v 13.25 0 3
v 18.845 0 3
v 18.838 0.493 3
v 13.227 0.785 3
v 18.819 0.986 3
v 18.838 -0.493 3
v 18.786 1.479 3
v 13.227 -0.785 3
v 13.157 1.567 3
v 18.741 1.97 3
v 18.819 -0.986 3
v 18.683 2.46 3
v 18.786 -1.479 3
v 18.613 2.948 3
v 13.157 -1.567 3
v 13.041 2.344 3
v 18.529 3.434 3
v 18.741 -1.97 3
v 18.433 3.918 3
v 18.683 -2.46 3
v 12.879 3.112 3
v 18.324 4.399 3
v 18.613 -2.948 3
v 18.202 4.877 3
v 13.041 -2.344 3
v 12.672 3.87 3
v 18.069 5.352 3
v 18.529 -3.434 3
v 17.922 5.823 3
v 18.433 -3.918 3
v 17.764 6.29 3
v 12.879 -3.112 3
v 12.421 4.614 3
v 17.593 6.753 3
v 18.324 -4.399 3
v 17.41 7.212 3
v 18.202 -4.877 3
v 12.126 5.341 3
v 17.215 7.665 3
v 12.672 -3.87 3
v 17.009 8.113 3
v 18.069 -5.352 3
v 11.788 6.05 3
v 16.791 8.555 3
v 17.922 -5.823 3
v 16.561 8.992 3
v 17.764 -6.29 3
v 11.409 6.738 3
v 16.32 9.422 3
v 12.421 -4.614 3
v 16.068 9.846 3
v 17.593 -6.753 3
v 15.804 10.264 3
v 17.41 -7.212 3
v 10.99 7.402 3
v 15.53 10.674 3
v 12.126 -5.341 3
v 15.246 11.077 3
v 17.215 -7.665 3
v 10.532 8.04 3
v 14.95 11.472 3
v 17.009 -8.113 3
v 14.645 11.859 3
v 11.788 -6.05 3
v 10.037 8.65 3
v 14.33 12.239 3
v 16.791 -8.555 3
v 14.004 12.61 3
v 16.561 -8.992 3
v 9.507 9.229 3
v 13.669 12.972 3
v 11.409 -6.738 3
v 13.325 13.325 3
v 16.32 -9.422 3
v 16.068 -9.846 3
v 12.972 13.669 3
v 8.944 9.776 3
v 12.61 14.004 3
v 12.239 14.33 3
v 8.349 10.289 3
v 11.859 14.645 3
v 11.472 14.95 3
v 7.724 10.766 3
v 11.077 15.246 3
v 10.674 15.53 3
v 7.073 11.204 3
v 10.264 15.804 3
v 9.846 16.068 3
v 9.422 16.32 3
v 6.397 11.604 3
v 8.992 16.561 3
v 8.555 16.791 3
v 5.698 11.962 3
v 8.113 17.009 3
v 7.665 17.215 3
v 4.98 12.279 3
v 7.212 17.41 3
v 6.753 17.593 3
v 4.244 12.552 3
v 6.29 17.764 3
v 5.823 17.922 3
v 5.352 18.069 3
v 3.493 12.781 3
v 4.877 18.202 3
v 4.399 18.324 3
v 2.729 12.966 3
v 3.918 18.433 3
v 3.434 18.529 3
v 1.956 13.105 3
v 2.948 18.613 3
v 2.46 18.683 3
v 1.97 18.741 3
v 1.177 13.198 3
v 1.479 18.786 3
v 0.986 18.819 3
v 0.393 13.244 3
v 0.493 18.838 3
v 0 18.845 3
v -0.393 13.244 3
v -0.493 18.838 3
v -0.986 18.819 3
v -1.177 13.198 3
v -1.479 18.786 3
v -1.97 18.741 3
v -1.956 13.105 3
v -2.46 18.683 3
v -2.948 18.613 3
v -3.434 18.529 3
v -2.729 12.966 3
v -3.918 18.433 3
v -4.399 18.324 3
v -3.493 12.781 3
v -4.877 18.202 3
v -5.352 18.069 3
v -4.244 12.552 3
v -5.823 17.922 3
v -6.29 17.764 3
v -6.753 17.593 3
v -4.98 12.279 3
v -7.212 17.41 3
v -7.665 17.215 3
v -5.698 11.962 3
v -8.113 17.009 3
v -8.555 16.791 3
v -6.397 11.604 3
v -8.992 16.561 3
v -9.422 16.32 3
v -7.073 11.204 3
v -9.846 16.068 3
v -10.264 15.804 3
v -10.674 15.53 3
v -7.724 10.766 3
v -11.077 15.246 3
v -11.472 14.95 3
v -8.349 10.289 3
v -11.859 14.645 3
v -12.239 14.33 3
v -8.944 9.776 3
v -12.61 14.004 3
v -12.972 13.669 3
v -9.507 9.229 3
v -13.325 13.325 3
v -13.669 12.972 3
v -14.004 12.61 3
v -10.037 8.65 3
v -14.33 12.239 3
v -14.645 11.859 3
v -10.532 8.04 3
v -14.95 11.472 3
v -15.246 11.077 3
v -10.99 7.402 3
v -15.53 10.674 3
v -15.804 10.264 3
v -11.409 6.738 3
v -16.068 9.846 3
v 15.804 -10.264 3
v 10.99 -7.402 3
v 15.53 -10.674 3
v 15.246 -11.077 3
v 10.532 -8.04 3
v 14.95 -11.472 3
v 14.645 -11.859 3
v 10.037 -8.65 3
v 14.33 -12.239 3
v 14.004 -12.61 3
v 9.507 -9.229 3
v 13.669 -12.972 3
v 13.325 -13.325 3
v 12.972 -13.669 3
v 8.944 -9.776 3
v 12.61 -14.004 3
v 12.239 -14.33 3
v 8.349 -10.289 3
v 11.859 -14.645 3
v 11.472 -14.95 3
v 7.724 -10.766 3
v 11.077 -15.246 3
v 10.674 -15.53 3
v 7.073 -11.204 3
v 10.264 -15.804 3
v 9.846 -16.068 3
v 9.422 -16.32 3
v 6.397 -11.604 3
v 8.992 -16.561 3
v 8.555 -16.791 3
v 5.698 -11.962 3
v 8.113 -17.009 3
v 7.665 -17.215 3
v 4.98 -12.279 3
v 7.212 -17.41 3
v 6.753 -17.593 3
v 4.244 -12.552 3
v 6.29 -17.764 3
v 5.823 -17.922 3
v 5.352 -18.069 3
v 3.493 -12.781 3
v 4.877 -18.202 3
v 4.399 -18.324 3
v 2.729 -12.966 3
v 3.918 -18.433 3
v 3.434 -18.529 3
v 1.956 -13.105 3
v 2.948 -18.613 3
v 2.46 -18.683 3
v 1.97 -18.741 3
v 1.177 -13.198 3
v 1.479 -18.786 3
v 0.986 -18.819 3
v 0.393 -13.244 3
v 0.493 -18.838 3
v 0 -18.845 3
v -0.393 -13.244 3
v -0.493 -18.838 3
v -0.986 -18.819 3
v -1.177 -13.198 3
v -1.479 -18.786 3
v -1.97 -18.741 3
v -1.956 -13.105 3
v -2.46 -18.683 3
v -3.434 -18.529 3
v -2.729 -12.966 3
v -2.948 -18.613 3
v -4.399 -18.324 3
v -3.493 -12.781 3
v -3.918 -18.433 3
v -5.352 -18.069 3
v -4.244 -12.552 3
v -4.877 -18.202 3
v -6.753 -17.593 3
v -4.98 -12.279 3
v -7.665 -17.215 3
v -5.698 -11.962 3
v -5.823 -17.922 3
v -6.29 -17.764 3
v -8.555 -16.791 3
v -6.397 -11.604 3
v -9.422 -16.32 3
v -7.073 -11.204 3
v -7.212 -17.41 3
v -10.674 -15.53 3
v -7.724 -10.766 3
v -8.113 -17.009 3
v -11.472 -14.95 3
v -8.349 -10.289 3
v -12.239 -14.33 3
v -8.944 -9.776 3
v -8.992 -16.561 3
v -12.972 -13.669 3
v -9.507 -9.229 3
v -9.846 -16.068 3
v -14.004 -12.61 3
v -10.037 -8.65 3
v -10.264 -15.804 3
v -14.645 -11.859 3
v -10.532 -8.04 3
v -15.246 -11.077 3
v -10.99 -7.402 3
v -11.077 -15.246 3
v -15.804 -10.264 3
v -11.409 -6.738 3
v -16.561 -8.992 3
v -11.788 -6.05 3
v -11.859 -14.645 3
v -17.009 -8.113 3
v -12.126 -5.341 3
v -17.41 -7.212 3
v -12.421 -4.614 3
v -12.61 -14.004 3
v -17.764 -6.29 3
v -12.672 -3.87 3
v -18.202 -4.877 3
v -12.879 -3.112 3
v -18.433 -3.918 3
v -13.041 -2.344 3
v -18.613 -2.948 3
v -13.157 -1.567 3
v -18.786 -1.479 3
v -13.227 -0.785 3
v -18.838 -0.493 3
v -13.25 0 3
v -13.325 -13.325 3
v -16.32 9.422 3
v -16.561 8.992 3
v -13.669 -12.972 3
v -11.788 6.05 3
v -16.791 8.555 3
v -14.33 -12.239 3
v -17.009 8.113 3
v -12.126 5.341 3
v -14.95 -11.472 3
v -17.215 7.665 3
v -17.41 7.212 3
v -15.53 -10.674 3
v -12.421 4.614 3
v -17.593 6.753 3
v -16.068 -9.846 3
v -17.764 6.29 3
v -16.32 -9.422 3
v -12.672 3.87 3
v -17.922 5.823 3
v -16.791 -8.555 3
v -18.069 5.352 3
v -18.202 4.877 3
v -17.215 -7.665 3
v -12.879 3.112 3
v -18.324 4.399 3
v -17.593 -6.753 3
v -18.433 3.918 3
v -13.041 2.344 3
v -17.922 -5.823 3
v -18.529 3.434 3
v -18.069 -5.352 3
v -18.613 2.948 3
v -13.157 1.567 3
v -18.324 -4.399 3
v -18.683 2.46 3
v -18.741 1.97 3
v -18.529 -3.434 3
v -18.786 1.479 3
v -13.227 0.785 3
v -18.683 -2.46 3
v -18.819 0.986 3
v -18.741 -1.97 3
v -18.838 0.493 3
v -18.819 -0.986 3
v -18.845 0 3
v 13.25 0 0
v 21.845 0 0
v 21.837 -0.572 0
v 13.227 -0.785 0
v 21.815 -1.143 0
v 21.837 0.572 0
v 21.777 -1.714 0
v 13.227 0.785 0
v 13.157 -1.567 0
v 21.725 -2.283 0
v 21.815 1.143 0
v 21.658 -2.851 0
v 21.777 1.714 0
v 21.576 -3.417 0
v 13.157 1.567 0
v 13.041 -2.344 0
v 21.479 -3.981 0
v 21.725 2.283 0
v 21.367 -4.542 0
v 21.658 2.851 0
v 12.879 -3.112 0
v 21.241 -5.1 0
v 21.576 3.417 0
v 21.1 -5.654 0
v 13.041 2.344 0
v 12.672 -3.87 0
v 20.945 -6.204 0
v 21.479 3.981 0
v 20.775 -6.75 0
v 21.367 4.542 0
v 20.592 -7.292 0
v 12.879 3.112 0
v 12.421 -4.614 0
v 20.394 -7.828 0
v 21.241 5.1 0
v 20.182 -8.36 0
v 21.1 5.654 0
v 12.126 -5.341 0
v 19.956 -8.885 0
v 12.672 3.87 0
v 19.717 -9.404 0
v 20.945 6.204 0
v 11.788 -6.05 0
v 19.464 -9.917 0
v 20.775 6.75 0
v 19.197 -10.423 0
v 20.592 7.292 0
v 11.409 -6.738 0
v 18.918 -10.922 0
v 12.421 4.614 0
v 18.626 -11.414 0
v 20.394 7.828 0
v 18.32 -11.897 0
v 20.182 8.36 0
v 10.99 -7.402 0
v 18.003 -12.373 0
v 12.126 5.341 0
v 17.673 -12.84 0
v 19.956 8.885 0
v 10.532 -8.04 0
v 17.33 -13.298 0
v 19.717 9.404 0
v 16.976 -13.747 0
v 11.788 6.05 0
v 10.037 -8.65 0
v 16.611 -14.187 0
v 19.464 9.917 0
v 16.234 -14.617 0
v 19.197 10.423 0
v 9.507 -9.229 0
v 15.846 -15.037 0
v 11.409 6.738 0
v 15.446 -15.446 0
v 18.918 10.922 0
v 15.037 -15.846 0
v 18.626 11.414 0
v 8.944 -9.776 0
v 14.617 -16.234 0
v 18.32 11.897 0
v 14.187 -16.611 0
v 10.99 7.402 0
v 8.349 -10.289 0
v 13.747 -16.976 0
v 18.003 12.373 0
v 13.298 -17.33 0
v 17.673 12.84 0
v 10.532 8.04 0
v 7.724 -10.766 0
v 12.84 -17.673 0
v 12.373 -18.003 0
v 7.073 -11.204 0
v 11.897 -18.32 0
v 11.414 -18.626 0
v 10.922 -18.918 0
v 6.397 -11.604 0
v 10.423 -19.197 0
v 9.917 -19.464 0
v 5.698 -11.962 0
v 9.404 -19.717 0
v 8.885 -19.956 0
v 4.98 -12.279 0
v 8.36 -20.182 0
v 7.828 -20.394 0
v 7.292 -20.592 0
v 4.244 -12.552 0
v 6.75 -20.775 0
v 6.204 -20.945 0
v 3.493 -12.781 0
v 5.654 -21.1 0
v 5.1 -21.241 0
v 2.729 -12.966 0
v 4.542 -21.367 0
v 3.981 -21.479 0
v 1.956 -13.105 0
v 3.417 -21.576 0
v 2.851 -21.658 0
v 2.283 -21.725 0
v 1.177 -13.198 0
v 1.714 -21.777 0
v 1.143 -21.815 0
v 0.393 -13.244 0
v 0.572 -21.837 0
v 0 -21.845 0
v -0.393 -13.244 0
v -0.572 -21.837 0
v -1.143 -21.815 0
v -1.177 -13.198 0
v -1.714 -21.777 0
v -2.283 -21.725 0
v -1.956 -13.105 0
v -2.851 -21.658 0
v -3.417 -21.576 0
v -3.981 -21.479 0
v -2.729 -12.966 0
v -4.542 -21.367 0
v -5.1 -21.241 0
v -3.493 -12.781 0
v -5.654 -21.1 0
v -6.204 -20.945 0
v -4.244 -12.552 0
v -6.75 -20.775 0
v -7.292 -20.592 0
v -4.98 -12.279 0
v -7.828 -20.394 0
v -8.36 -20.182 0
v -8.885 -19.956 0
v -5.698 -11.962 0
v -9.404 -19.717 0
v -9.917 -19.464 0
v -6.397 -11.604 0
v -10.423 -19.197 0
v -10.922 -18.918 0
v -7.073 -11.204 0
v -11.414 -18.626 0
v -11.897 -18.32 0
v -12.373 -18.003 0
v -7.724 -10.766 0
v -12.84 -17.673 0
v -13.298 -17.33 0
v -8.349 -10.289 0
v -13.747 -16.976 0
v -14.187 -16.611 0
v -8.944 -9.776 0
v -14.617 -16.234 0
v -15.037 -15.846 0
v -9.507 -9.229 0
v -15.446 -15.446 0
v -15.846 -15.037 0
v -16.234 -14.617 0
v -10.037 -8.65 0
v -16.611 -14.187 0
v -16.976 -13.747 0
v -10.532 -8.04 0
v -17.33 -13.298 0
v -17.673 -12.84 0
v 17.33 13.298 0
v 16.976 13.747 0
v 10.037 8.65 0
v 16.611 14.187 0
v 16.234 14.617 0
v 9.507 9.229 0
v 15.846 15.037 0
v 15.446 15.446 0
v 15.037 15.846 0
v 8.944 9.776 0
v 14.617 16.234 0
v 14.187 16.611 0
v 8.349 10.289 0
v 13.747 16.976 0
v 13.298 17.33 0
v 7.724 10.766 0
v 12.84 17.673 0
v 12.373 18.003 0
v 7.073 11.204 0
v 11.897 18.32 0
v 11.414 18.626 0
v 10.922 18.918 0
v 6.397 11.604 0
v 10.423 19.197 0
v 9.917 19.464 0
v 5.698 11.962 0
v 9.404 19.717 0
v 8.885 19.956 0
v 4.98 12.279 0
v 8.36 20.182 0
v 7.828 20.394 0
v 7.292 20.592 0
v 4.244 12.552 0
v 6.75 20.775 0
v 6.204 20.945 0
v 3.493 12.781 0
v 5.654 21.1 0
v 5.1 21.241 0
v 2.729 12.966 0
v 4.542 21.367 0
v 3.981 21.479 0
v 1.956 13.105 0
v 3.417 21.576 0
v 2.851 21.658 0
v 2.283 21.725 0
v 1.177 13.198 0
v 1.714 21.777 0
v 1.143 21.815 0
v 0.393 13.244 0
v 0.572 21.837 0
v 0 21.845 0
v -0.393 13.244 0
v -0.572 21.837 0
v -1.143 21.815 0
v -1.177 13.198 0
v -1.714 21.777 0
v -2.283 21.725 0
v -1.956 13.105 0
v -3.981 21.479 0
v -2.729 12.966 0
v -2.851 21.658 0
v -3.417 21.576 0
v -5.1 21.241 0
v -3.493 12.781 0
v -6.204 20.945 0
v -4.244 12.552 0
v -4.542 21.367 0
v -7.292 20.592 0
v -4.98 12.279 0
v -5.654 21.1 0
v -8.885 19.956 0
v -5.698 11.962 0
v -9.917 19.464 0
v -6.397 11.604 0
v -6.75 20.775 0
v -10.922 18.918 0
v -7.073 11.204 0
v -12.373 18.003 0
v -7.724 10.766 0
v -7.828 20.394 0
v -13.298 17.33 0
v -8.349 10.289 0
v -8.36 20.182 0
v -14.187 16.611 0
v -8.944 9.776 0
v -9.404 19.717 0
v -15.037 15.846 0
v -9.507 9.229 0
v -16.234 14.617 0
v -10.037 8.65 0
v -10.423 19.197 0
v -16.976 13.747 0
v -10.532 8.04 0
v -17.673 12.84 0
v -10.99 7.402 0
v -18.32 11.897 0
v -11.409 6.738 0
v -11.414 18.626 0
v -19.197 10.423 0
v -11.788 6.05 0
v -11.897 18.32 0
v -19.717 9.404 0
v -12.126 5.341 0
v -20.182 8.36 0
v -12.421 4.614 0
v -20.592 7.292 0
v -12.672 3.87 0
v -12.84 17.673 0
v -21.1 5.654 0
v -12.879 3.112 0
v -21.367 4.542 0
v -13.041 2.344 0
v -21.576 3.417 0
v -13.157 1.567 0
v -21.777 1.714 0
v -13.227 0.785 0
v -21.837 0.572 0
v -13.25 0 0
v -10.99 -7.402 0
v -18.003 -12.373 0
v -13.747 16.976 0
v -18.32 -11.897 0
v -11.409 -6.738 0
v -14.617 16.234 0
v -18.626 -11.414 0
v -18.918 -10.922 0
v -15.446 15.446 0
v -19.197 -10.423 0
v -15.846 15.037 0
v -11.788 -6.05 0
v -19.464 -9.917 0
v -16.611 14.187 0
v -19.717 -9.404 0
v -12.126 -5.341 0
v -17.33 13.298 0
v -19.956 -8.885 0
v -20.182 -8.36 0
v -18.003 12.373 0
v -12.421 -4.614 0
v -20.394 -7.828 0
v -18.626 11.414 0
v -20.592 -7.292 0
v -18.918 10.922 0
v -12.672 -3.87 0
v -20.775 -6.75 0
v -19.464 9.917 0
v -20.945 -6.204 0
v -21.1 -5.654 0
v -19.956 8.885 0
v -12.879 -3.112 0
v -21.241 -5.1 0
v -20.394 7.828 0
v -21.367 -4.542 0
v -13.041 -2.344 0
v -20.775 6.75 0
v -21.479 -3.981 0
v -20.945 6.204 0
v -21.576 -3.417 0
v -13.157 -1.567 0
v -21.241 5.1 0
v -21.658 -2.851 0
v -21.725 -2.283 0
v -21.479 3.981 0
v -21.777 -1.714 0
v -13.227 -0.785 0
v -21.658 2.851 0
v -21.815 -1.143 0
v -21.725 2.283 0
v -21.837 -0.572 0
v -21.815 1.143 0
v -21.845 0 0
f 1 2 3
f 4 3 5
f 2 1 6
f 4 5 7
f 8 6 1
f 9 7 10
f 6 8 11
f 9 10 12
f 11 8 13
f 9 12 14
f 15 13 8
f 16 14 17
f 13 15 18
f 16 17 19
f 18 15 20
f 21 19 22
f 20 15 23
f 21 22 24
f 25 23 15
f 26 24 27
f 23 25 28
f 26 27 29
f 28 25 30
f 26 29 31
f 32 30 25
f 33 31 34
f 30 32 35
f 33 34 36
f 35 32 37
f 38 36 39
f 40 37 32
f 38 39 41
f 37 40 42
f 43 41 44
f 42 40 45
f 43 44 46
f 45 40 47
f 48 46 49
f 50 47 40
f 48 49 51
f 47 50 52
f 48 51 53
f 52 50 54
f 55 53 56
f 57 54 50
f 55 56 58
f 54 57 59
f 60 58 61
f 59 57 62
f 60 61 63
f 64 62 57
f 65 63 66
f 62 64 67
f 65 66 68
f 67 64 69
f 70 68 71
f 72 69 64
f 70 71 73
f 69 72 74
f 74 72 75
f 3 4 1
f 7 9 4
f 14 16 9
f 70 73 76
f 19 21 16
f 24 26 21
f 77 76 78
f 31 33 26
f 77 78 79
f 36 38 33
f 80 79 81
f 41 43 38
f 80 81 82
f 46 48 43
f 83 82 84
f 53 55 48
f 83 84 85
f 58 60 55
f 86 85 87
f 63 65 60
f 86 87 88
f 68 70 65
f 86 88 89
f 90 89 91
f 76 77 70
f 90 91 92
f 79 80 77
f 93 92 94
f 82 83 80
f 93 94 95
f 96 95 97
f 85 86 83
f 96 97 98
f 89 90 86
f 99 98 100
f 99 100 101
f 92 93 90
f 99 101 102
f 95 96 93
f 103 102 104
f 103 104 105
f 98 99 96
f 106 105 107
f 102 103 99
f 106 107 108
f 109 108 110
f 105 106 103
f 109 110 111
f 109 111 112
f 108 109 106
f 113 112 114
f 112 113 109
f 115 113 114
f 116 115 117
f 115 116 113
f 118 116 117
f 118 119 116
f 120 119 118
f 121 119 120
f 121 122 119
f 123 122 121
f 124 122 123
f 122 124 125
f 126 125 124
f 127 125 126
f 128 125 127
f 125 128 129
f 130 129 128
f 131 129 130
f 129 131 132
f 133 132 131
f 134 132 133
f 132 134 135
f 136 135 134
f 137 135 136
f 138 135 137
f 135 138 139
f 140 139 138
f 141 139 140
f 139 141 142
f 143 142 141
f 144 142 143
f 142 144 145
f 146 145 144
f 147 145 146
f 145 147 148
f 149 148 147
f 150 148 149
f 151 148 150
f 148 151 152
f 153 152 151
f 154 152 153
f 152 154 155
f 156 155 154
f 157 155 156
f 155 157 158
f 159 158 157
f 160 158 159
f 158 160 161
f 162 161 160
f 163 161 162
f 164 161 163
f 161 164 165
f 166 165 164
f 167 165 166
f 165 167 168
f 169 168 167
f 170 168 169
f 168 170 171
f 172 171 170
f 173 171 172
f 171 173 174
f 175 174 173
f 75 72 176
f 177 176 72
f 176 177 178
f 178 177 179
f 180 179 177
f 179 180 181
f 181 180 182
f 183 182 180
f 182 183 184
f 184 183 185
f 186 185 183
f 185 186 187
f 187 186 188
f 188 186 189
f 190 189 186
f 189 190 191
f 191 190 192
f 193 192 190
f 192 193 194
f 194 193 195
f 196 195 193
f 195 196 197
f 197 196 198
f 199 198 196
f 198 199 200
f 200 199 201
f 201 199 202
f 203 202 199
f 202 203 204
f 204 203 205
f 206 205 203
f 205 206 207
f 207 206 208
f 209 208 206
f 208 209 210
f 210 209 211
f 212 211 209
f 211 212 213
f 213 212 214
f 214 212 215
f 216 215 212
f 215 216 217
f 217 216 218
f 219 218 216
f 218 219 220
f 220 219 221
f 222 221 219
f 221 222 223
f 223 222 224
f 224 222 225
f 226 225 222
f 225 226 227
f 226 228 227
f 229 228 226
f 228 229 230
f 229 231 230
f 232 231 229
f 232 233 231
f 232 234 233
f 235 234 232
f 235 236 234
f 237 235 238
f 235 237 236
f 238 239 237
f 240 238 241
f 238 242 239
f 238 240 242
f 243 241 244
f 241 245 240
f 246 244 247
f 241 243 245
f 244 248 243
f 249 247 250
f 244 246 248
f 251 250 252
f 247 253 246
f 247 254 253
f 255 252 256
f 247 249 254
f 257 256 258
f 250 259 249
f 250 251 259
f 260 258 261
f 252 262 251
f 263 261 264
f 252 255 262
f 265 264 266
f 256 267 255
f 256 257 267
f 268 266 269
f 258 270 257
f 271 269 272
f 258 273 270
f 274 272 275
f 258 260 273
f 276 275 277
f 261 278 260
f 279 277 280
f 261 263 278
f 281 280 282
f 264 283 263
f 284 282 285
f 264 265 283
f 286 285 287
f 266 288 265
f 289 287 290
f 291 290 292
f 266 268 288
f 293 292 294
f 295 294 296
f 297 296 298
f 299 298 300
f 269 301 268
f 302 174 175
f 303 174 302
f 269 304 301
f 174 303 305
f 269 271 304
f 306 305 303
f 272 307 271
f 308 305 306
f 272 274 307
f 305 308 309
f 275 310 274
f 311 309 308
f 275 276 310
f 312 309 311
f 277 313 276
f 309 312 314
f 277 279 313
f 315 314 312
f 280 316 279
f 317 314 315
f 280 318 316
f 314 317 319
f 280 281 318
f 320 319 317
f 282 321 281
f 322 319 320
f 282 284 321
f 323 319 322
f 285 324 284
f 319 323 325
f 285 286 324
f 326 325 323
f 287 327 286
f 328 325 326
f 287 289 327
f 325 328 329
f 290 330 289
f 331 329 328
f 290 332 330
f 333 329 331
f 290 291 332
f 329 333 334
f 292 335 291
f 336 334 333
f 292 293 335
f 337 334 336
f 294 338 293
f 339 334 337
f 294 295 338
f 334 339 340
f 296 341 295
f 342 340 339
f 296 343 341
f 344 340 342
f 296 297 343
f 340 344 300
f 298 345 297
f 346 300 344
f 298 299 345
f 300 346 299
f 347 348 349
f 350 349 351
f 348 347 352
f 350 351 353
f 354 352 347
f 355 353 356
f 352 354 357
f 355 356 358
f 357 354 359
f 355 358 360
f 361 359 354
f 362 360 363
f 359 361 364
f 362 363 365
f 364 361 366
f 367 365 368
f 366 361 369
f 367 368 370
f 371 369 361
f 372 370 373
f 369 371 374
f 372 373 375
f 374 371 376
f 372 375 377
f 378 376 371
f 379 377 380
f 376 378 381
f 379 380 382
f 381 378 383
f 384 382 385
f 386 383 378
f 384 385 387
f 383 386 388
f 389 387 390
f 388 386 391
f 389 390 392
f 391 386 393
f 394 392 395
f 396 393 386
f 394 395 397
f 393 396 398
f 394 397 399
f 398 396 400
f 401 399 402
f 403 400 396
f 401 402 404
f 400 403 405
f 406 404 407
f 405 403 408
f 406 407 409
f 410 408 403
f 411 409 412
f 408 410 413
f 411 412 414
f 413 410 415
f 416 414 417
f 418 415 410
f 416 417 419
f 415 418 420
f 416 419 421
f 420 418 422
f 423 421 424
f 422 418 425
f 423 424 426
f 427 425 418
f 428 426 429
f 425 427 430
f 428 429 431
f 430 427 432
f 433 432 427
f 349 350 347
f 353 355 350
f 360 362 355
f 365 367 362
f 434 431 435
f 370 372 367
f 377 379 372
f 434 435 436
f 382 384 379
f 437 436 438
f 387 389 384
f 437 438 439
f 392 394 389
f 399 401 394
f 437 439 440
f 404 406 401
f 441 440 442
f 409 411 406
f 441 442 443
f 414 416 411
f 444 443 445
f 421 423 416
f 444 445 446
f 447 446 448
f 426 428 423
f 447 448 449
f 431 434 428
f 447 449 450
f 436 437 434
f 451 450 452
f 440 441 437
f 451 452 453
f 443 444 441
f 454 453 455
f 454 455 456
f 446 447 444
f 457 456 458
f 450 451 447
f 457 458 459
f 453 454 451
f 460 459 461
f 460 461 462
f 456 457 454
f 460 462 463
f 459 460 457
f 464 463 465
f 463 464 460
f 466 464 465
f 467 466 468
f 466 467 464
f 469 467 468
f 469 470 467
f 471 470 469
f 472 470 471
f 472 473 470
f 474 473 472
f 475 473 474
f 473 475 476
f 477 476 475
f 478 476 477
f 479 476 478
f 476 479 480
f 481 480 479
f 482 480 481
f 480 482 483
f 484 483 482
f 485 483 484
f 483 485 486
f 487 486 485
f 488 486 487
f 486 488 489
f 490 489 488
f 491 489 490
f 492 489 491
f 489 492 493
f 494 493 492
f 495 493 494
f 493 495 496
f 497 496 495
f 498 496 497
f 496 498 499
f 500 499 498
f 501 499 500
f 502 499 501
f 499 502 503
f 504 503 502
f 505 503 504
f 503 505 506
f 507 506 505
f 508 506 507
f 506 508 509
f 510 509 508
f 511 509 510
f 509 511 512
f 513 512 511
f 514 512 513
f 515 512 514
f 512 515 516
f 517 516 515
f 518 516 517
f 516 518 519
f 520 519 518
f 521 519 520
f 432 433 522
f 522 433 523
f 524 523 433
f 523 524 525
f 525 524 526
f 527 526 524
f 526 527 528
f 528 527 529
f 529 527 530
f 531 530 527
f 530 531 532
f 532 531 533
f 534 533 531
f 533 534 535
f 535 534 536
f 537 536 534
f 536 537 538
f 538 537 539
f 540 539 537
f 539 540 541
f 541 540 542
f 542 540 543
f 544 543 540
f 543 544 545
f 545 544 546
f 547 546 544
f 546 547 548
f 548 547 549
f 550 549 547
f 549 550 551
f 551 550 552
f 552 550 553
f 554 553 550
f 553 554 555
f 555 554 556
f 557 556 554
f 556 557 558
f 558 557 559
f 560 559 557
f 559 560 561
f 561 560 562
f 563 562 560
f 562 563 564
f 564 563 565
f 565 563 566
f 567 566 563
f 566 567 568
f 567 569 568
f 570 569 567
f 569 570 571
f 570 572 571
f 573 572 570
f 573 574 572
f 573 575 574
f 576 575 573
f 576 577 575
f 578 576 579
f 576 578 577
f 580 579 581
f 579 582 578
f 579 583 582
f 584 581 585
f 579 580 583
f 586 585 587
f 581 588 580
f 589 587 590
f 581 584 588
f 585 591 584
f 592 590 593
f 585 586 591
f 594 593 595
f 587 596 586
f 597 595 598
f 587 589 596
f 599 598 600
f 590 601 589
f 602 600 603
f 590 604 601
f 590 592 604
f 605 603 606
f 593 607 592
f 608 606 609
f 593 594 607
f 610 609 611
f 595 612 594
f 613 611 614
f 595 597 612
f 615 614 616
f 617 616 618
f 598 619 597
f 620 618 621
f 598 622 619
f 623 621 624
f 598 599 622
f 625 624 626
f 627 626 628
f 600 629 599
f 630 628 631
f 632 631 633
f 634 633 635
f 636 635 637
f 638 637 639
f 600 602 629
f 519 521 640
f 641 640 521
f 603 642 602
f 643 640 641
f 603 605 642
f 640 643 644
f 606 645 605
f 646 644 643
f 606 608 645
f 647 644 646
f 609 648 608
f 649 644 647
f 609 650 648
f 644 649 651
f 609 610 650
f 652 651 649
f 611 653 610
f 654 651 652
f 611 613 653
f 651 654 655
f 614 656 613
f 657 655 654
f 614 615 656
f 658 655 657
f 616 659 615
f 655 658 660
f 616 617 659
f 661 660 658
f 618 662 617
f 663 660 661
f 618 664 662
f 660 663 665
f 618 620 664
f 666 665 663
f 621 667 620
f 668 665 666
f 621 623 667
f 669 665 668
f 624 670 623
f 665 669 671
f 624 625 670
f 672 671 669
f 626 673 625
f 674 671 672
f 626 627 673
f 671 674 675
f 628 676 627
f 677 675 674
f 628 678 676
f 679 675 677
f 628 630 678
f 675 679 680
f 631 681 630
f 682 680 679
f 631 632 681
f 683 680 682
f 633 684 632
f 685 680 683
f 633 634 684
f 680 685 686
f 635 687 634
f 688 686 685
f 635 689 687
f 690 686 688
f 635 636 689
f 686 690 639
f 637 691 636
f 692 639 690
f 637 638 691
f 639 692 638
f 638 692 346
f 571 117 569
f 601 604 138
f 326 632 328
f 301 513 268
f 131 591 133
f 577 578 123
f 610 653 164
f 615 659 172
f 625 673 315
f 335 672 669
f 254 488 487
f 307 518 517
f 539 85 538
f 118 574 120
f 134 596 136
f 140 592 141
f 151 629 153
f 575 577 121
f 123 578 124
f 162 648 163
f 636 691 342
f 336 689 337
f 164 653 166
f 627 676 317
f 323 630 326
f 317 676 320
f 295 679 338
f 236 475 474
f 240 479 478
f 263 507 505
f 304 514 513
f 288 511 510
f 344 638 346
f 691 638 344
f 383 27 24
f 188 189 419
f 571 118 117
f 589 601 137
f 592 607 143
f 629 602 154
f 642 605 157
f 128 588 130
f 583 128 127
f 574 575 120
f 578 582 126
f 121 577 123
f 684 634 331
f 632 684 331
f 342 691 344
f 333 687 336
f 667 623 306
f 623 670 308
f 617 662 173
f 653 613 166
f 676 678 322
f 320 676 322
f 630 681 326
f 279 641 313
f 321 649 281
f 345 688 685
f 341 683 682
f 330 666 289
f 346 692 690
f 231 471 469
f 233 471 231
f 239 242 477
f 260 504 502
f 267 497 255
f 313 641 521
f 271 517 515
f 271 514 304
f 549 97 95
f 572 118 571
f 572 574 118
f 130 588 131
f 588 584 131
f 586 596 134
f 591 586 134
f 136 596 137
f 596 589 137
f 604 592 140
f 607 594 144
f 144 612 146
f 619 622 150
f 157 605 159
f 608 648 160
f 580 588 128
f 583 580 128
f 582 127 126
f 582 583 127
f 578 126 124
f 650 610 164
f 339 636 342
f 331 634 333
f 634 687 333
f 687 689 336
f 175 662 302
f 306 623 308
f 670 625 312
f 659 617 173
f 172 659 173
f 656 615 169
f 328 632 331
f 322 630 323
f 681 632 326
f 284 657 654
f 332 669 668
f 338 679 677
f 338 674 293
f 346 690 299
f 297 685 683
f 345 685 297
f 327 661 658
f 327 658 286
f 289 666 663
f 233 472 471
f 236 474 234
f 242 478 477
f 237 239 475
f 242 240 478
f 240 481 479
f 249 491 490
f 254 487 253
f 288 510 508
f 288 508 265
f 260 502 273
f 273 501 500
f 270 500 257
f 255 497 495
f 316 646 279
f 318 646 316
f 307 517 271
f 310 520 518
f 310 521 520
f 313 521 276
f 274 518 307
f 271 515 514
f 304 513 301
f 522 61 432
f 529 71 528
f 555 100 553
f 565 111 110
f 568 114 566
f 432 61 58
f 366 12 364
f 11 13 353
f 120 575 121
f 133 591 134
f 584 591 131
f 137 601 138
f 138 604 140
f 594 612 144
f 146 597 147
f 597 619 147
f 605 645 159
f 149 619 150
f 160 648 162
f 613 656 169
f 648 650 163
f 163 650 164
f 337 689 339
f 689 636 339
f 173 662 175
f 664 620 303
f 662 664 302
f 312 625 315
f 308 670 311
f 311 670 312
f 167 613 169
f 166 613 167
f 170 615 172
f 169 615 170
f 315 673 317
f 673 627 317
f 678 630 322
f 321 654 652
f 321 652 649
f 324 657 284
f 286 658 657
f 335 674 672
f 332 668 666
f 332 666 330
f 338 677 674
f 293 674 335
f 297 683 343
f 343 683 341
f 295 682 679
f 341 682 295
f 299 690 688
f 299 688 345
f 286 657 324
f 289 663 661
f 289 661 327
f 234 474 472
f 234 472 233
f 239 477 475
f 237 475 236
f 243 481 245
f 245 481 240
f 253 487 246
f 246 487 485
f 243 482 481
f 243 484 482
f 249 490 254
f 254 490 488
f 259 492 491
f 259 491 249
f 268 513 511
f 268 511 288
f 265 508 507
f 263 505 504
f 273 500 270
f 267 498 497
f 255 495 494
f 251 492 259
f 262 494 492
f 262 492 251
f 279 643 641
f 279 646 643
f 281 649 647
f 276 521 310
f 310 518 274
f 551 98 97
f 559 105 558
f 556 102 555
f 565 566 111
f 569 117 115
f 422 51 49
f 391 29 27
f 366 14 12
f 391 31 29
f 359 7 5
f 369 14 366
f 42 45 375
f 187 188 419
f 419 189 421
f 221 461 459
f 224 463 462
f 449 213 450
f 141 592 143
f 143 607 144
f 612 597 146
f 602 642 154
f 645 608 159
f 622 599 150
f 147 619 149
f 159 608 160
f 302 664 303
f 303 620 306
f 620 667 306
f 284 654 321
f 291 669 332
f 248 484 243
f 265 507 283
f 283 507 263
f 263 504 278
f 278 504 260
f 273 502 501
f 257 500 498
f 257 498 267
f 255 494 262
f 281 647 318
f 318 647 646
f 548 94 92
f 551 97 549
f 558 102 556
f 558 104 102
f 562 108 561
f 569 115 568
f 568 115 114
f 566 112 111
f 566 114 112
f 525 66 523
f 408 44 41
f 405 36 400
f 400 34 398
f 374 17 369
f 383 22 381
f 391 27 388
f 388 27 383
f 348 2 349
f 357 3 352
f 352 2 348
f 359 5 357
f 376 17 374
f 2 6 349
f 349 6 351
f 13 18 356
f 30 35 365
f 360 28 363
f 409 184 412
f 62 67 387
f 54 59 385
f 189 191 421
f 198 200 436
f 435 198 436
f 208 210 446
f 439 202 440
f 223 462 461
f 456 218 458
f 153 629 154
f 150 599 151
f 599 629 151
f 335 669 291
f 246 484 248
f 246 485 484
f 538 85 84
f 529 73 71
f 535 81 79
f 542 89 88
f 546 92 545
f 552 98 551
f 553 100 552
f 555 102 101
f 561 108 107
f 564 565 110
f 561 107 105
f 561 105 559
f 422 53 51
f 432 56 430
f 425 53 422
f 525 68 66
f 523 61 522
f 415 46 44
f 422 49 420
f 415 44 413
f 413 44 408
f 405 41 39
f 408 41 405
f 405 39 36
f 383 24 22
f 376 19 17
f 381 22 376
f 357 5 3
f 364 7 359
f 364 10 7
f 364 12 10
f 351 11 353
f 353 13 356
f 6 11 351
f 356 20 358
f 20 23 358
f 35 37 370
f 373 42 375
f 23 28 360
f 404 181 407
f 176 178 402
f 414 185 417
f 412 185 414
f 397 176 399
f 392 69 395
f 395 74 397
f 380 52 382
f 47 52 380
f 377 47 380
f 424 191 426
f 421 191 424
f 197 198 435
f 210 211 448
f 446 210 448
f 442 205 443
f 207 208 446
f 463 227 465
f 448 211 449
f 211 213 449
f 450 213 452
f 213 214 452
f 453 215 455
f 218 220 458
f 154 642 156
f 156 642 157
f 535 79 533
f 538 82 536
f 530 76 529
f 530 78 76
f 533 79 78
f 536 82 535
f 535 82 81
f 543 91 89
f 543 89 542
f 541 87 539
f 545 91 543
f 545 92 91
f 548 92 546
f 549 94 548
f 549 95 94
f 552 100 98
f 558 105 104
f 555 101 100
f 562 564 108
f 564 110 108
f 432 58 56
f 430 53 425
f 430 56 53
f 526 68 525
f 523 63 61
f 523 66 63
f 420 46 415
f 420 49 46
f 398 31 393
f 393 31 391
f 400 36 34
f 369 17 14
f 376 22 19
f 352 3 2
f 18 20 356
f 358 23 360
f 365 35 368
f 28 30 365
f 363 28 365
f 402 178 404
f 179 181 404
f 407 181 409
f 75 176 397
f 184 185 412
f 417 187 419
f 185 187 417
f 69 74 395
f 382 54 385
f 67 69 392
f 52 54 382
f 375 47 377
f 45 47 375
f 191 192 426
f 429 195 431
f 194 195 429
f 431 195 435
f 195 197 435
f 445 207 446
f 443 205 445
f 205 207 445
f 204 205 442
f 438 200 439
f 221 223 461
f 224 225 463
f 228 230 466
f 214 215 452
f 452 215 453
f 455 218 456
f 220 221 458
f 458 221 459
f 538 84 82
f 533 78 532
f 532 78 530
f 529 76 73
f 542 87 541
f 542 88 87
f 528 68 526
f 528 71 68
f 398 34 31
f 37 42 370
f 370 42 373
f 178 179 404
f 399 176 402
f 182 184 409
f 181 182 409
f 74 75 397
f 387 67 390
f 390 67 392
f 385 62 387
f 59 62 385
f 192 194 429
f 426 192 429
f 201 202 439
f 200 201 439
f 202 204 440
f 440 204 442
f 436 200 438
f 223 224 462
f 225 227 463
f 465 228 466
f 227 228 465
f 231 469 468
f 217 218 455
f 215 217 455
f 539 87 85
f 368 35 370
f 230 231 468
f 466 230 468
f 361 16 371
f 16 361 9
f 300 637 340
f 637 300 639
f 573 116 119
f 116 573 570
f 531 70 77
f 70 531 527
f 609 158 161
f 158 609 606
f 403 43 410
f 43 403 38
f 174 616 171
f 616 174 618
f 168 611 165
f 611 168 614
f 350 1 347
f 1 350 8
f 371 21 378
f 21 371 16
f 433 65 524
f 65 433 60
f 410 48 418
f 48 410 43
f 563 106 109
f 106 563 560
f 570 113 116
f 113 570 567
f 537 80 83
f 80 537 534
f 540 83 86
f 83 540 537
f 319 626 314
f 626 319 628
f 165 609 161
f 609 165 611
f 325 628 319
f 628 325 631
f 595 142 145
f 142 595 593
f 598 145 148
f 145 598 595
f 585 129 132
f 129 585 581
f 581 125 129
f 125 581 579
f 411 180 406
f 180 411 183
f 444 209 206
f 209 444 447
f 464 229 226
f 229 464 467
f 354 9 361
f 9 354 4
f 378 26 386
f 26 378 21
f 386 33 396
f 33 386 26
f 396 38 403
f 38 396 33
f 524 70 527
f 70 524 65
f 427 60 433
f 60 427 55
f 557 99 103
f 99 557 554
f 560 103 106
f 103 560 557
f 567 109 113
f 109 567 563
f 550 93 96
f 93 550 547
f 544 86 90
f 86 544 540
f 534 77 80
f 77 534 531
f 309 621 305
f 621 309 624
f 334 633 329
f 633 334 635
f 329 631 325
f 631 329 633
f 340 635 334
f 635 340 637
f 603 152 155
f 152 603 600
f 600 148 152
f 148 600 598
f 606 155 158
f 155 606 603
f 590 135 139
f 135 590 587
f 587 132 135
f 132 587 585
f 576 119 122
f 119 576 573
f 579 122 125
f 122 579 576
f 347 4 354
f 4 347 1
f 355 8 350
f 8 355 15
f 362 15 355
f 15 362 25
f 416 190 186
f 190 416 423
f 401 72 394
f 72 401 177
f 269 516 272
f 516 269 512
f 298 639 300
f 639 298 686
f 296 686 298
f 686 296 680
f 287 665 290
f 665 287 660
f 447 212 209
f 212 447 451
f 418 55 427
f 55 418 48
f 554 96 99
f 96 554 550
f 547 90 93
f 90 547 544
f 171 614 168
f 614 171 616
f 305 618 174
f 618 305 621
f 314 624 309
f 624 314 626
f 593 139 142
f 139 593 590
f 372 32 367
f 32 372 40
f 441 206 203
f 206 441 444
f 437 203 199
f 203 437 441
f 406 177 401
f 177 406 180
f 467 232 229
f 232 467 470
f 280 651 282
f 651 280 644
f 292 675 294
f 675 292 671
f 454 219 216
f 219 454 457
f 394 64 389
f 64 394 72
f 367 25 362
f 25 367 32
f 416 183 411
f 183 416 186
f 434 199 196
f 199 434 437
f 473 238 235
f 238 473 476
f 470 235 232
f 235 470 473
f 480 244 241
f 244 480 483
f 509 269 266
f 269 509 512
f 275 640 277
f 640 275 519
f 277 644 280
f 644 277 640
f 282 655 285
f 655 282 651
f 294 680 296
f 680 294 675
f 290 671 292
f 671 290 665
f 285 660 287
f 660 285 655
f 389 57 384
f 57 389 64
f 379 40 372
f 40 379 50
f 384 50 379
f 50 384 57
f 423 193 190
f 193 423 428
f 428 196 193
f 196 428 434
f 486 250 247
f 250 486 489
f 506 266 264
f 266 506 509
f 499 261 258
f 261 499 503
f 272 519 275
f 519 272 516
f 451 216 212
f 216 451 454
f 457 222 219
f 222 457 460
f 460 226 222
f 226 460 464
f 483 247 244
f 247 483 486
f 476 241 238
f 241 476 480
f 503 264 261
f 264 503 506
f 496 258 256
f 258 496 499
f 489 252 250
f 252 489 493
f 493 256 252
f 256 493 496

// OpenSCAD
// Parametric Pulley with multiple belt profiles
// by droftarts January 2012

// Based on pulleys by:
// http://www.thingiverse.com/thing:11256 by me!
// https://github.com/prusajr/PrusaMendel by Josef Prusa
// http://www.thingiverse.com/thing:3104 by GilesBathgate
// http://www.thingiverse.com/thing:2079 by nophead

// dxf tooth data from http://oem.cadregister.com/asp/PPOW_Entry.asp?company=915217&elementID=07807803/METRIC/URETH/WV0025/F
// pulley diameter checked and modelled from data at http://www.sdp-si.com/D265/HTML/D265T016.html

/**
 * @name Pulley
 * @category Printed
 * @using 1 x m3 nut, normal or nyloc
 * @using 1 x m3x10 set screw or 1 x m3x8 grub screw
 */


//RN: Standard hobby pully is GT2_2mm
//RN: X retainer (lower/smaller) -- shaft 26.25 mm
//RN: Y retainer (upper/larger) -- shaft 29.5 mm

// tuneable constants


motor_shaft = 26.50;	// NEMA17 motor shaft exact diameter = 5

//teeth not used for retainer
teeth = 60;			// Number of teeth, standard Mendel T5 belt = 8, gives Outside Diameter of 11.88mm
//profile not used for retainer
profile = 12;		// 1=MXL 2=40DP 3=XL 4=H 5=T2.5 6=T5 7=T10 8=AT5 9=HTD_3mm 10=HTD_5mm 11=HTD_8mm 12=GT2_2mm 13=GT2_3mm 14=GT2_5mm







m3_dia = 0;		// 3mm hole diameter
m3_nut_hex = 0;		// 1 for hex, 0 for square nut
m3_nut_flats = 0;	// normal M3 hex nut exact width = 5.5
m3_nut_depth = 0;	// normal M3 hex nut exact depth = 2.4, nyloc = 4

retainer = 0;		// Belt retainer above teeth, 0 = No, 1 = Yes
retainer_ht = 0;	// height of retainer flange over pulley, standard = 1.5
idler = 1;			// Belt retainer below teeth, 0 = No, 1 = Yes
idler_ht = 3;		// height of idler flange over pulley, standard = 1.5

pulley_t_ht = 0;	// length of toothed part of pulley, standard = 12
pulley_b_ht = 3;		// pulley base height, standard = 8. Set to same as idler_ht if you want an idler but no pulley.
pulley_b_dia = 30;	// pulley base diameter, standard = 20
no_of_nuts = 0;		// number of captive nuts required, standard = 1
nut_angle = 90;		// angle between nuts, standard = 90
nut_shaft_distance = 0;	// distance between inner face of nut and shaft, can be negative.


//	********************************
//	** Scaling tooth for good fit **
//	********************************
/*	To improve fit of belt to pulley, set the following constant. Decrease or increase by 0.1mm at a time. We are modelling the *BELT* tooth here, not the tooth on the pulley. Increasing the number will *decrease* the pulley tooth size. Increasing the tooth width will also scale proportionately the tooth depth, to maintain the shape of the tooth, and increase how far into the pulley the tooth is indented. Can be negative */

additional_tooth_width = 0.2; //mm

//	If you need more tooth depth than this provides, adjust the following constant. However, this will cause the shape of the tooth to change.

additional_tooth_depth = 0; //mm

// calculated constants

nut_elevation = pulley_b_ht/2;
m3_nut_points = 2*((m3_nut_flats/2)/cos(30)); // This is needed for the nut trap

// The following set the pulley diameter for a given number of teeth

MXL_pulley_dia = tooth_spacing (2.032,0.254);
40DP_pulley_dia = tooth_spacing (2.07264,0.1778);
XL_pulley_dia = tooth_spacing (5.08,0.254);
H_pulley_dia = tooth_spacing (9.525,0.381);
T2_5_pulley_dia = tooth_spaceing_curvefit (0.7467,0.796,1.026);
T5_pulley_dia = tooth_spaceing_curvefit (0.6523,1.591,1.064);
T10_pulley_dia = tooth_spacing (10,0.93);
AT5_pulley_dia = tooth_spaceing_curvefit (0.6523,1.591,1.064);
HTD_3mm_pulley_dia = tooth_spacing (3,0.381);
HTD_5mm_pulley_dia = tooth_spacing (5,0.5715);
HTD_8mm_pulley_dia = tooth_spacing (8,0.6858);
GT2_2mm_pulley_dia = tooth_spacing (2,0.254);
GT2_3mm_pulley_dia = tooth_spacing (3,0.381);
GT2_5mm_pulley_dia = tooth_spacing (5,0.5715);

// The following calls the pulley creation part, and passes the pulley diameter and tooth width to that module

if ( profile == 1 ) { pulley ( "MXL" , MXL_pulley_dia , 0.508 , 1.321 ); }
if ( profile == 2 ) { pulley ( "40 D.P." , 40DP_pulley_dia , 0.457 , 1.226 ); }
if ( profile == 3 ) { pulley ( "XL" , XL_pulley_dia , 1.27, 3.051 ); }
if ( profile == 4 ) { pulley ( "H" , H_pulley_dia ,1.905 , 5.359 ); }
if ( profile == 5 ) { pulley ( "T2.5" , T2_5_pulley_dia , 0.7 , 1.678 ); }
if ( profile == 6 ) { pulley ( "T5" , T5_pulley_dia , 1.19 , 3.264 ); }
if ( profile == 7 ) { pulley ( "T10" , T10_pulley_dia , 2.5 , 6.13 ); }
if ( profile == 8 ) { pulley ( "AT5" , AT5_pulley_dia , 1.19 , 4.268 ); }
if ( profile == 9 ) { pulley ( "HTD 3mm" , HTD_3mm_pulley_dia , 1.289 , 2.27 ); }
if ( profile == 10 ) { pulley ( "HTD 5mm" , HTD_5mm_pulley_dia , 2.199 , 3.781 ); }
if ( profile == 11 ) { pulley ( "HTD 8mm" , HTD_8mm_pulley_dia , 3.607 , 6.603 ); }
if ( profile == 12 ) { pulley ( "GT2 2mm" , GT2_2mm_pulley_dia , 0.764 , 1.494 ); }
if ( profile == 13 ) { pulley ( "GT2 3mm" , GT2_3mm_pulley_dia , 1.169 , 2.31 ); }
if ( profile == 14 ) { pulley ( "GT2 5mm" , GT2_5mm_pulley_dia , 1.969 , 3.952 ); }

// Functions

function tooth_spaceing_curvefit (b,c,d)
	= ((c * pow(teeth,d)) / (b + pow(teeth,d))) * teeth ;

function tooth_spacing(tooth_pitch,pitch_line_offset)
	= (2*((teeth*tooth_pitch)/(3.14159265*2)-pitch_line_offset)) ;

// Main Module

module pulley( belt_type , pulley_OD , tooth_depth , tooth_width )
	{
	echo (str("Belt type = ",belt_type,"; Number of teeth = ",teeth,"; Pulley Outside Diameter = ",pulley_OD,"mm "));
	tooth_distance_from_centre = sqrt( pow(pulley_OD/2,2) - pow((tooth_width+additional_tooth_width)/2,2));
	tooth_width_scale = (tooth_width + additional_tooth_width ) / tooth_width;
	tooth_depth_scale = ((tooth_depth + additional_tooth_depth ) / tooth_depth) ;


//	************************************************************************
//	*** uncomment the following line if pulley is wider than puller base ***
//	************************************************************************

//	translate ([0,0, pulley_b_ht + pulley_t_ht + retainer_ht ]) rotate ([0,180,0])

	difference()
	 {	 
		union()
		{
			//base
	
			if ( pulley_b_ht < 2 ) { echo ("CAN'T DRAW PULLEY BASE, HEIGHT LESS THAN 2!!!"); } else {
				rotate_extrude($fn=pulley_b_dia*2)
				{
						square([pulley_b_dia/2-1,pulley_b_ht]);
						square([pulley_b_dia/2,pulley_b_ht-1]);
						translate([pulley_b_dia/2-1,pulley_b_ht-1]) circle(1);
				}
			}
	
		difference()
			{
			//shaft - diameter is outside diameter of pulley
			
			translate([0,0,pulley_b_ht]) 
			rotate ([0,0,360/(teeth*4)]) 
			cylinder(r=pulley_OD/2,h=pulley_t_ht, $fn=teeth*4);
	
			//teeth - cut out of shaft
		
			for(i=[1:teeth]) 
			rotate([0,0,i*(360/teeth)])
			translate([0,-tooth_distance_from_centre,pulley_b_ht -1]) 
			scale ([ tooth_width_scale , tooth_depth_scale , 1 ]) 
			{
			if ( profile == 1 ) { MXL();}
			if ( profile == 2 ) { 40DP();}
			if ( profile == 3 ) { XL();}
			if ( profile == 4 ) { H();}
			if ( profile == 5 ) { T2_5();}
			if ( profile == 6 ) { T5();}
			if ( profile == 7 ) { T10();}
			if ( profile == 8 ) { AT5();}
			if ( profile == 9 ) { HTD_3mm();}
			if ( profile == 10 ) { HTD_5mm();}
			if ( profile == 11 ) { HTD_8mm();}
			if ( profile == 12 ) { GT2_2mm();}
			if ( profile == 13 ) { GT2_3mm();}
			if ( profile == 14 ) { GT2_5mm();}
			}

			}
			
		//belt retainer / idler
		if ( retainer > 0 ) {translate ([0,0, pulley_b_ht + pulley_t_ht ]) 
		rotate_extrude($fn=teeth*4)  
		polygon([[0,0],[pulley_OD/2,0],[pulley_OD/2 + retainer_ht , retainer_ht],[0 , retainer_ht],[0,0]]);}
		
		if ( idler > 0 ) {translate ([0,0, pulley_b_ht - idler_ht ]) 
		rotate_extrude($fn=teeth*4)  
		polygon([[0,0],[pulley_OD/2 + idler_ht,0],[pulley_OD/2 , idler_ht],[0 , idler_ht],[0,0]]);}
	
		}
	   
		//hole for motor shaft
		translate([0,0,-1])cylinder(r=motor_shaft/2,h=pulley_b_ht + pulley_t_ht + retainer_ht + 2,$fn=motor_shaft*4);
				
		//captive nut and grub screw holes
	
		if ( pulley_b_ht < m3_nut_flats ) { echo ("CAN'T DRAW CAPTIVE NUTS, HEIGHT LESS THAN NUT DIAMETER!!!"); } else {
		if ( (pulley_b_dia - motor_shaft)/2 < m3_nut_depth + 3 ) { echo ("CAN'T DRAW CAPTIVE NUTS, DIAMETER TOO SMALL FOR NUT DEPTH!!!"); } else {
	
			for(j=[1:no_of_nuts]) rotate([0,0,j*nut_angle])
			translate([0,0,nut_elevation])rotate([90,0,0])
	
			union()
			{
				//entrance
				translate([0,-pulley_b_ht/4-0.5,motor_shaft/2+m3_nut_depth/2+nut_shaft_distance]) cube([m3_nut_flats,pulley_b_ht/2+1,m3_nut_depth],center=true);
	
				//nut
				if ( m3_nut_hex > 0 )
					{
						// hex nut
						translate([0,0.25,motor_shaft/2+m3_nut_depth/2+nut_shaft_distance]) rotate([0,0,30]) cylinder(r=m3_nut_points/2,h=m3_nut_depth,center=true,$fn=6);
					} else {
						// square nut
						translate([0,0.25,motor_shaft/2+m3_nut_depth/2+nut_shaft_distance]) cube([m3_nut_flats,m3_nut_flats,m3_nut_depth],center=true);
					}
	
				//grub screw hole
				rotate([0,0,22.5])cylinder(r=m3_dia/2,h=pulley_b_dia/2+1,$fn=8);
			}
		}}
	 }
	   
	}


// Tooth profile modules

module MXL()
	{
	linear_extrude(height=pulley_t_ht+2) polygon([[-0.660421,-0.5],[-0.660421,0],[-0.621898,0.006033],[-0.587714,0.023037],[-0.560056,0.049424],[-0.541182,0.083609],[-0.417357,0.424392],[-0.398413,0.458752],[-0.370649,0.48514],[-0.336324,0.502074],[-0.297744,0.508035],[0.297744,0.508035],[0.336268,0.502074],[0.370452,0.48514],[0.39811,0.458752],[0.416983,0.424392],[0.540808,0.083609],[0.559752,0.049424],[0.587516,0.023037],[0.621841,0.006033],[0.660421,0],[0.660421,-0.5]]);
	}

module 40DP()
	{
	linear_extrude(height=pulley_t_ht+2) polygon([[-0.612775,-0.5],[-0.612775,0],[-0.574719,0.010187],[-0.546453,0.0381],[-0.355953,0.3683],[-0.327604,0.405408],[-0.291086,0.433388],[-0.248548,0.451049],[-0.202142,0.4572],[0.202494,0.4572],[0.248653,0.451049],[0.291042,0.433388],[0.327609,0.405408],[0.356306,0.3683],[0.546806,0.0381],[0.574499,0.010187],[0.612775,0],[0.612775,-0.5]]);
	}

module XL()
	{
	linear_extrude(height=pulley_t_ht+2) polygon([[-1.525411,-1],[-1.525411,0],[-1.41777,0.015495],[-1.320712,0.059664],[-1.239661,0.129034],[-1.180042,0.220133],[-0.793044,1.050219],[-0.733574,1.141021],[-0.652507,1.210425],[-0.555366,1.254759],[-0.447675,1.270353],[0.447675,1.270353],[0.555366,1.254759],[0.652507,1.210425],[0.733574,1.141021],[0.793044,1.050219],[1.180042,0.220133],[1.239711,0.129034],[1.320844,0.059664],[1.417919,0.015495],[1.525411,0],[1.525411,-1]]);
	}

module H()
	{
	linear_extrude(height=pulley_t_ht+2) polygon([[-2.6797,-1],[-2.6797,0],[-2.600907,0.006138],[-2.525342,0.024024],[-2.45412,0.052881],[-2.388351,0.091909],[-2.329145,0.140328],[-2.277614,0.197358],[-2.234875,0.262205],[-2.202032,0.334091],[-1.75224,1.57093],[-1.719538,1.642815],[-1.676883,1.707663],[-1.62542,1.764693],[-1.566256,1.813112],[-1.500512,1.85214],[-1.4293,1.880997],[-1.353742,1.898883],[-1.274949,1.905021],[1.275281,1.905021],[1.354056,1.898883],[1.429576,1.880997],[1.500731,1.85214],[1.566411,1.813112],[1.625508,1.764693],[1.676919,1.707663],[1.719531,1.642815],[1.752233,1.57093],[2.20273,0.334091],[2.235433,0.262205],[2.278045,0.197358],[2.329455,0.140328],[2.388553,0.091909],[2.454233,0.052881],[2.525384,0.024024],[2.600904,0.006138],[2.6797,0],[2.6797,-1]]);
	}

module T2_5()
	{
	linear_extrude(height=pulley_t_ht+2) polygon([[-0.839258,-0.5],[-0.839258,0],[-0.770246,0.021652],[-0.726369,0.079022],[-0.529167,0.620889],[-0.485025,0.67826],[-0.416278,0.699911],[0.416278,0.699911],[0.484849,0.67826],[0.528814,0.620889],[0.726369,0.079022],[0.770114,0.021652],[0.839258,0],[0.839258,-0.5]]);
	}

module T5()
	{
	linear_extrude(height=pulley_t_ht+2) polygon([[-1.632126,-0.5],[-1.632126,0],[-1.568549,0.004939],[-1.507539,0.019367],[-1.450023,0.042686],[-1.396912,0.074224],[-1.349125,0.113379],[-1.307581,0.159508],[-1.273186,0.211991],[-1.246868,0.270192],[-1.009802,0.920362],[-0.983414,0.978433],[-0.949018,1.030788],[-0.907524,1.076798],[-0.859829,1.115847],[-0.80682,1.147314],[-0.749402,1.170562],[-0.688471,1.184956],[-0.624921,1.189895],[0.624971,1.189895],[0.688622,1.184956],[0.749607,1.170562],[0.807043,1.147314],[0.860055,1.115847],[0.907754,1.076798],[0.949269,1.030788],[0.9837,0.978433],[1.010193,0.920362],[1.246907,0.270192],[1.273295,0.211991],[1.307726,0.159508],[1.349276,0.113379],[1.397039,0.074224],[1.450111,0.042686],[1.507589,0.019367],[1.568563,0.004939],[1.632126,0],[1.632126,-0.5]]);
	}

module T10()
	{
	linear_extrude(height=pulley_t_ht+2) polygon([[-3.06511,-1],[-3.06511,0],[-2.971998,0.007239],[-2.882718,0.028344],[-2.79859,0.062396],[-2.720931,0.108479],[-2.651061,0.165675],[-2.590298,0.233065],[-2.539962,0.309732],[-2.501371,0.394759],[-1.879071,2.105025],[-1.840363,2.190052],[-1.789939,2.266719],[-1.729114,2.334109],[-1.659202,2.391304],[-1.581518,2.437387],[-1.497376,2.47144],[-1.408092,2.492545],[-1.314979,2.499784],[1.314979,2.499784],[1.408091,2.492545],[1.497371,2.47144],[1.581499,2.437387],[1.659158,2.391304],[1.729028,2.334109],[1.789791,2.266719],[1.840127,2.190052],[1.878718,2.105025],[2.501018,0.394759],[2.539726,0.309732],[2.59015,0.233065],[2.650975,0.165675],[2.720887,0.108479],[2.798571,0.062396],[2.882713,0.028344],[2.971997,0.007239],[3.06511,0],[3.06511,-1]]);
	}

module AT5()
	{
	linear_extrude(height=pulley_t_ht+2) polygon([[-2.134129,-0.75],[-2.134129,0],[-2.058023,0.005488],[-1.984595,0.021547],[-1.914806,0.047569],[-1.849614,0.082947],[-1.789978,0.127073],[-1.736857,0.179338],[-1.691211,0.239136],[-1.653999,0.305859],[-1.349199,0.959203],[-1.286933,1.054635],[-1.201914,1.127346],[-1.099961,1.173664],[-0.986896,1.18992],[0.986543,1.18992],[1.099614,1.173664],[1.201605,1.127346],[1.286729,1.054635],[1.349199,0.959203],[1.653646,0.305859],[1.690859,0.239136],[1.73651,0.179338],[1.789644,0.127073],[1.849305,0.082947],[1.914539,0.047569],[1.984392,0.021547],[2.057906,0.005488],[2.134129,0],[2.134129,-0.75]]);
	}

module HTD_3mm()
	{
	linear_extrude(height=pulley_t_ht+2) polygon([[-1.135062,-0.5],[-1.135062,0],[-1.048323,0.015484],[-0.974284,0.058517],[-0.919162,0.123974],[-0.889176,0.206728],[-0.81721,0.579614],[-0.800806,0.653232],[-0.778384,0.72416],[-0.750244,0.792137],[-0.716685,0.856903],[-0.678005,0.918199],[-0.634505,0.975764],[-0.586483,1.029338],[-0.534238,1.078662],[-0.47807,1.123476],[-0.418278,1.16352],[-0.355162,1.198533],[-0.289019,1.228257],[-0.22015,1.25243],[-0.148854,1.270793],[-0.07543,1.283087],[-0.000176,1.28905],[0.075081,1.283145],[0.148515,1.270895],[0.219827,1.252561],[0.288716,1.228406],[0.354879,1.19869],[0.418018,1.163675],[0.477831,1.123623],[0.534017,1.078795],[0.586276,1.029452],[0.634307,0.975857],[0.677809,0.91827],[0.716481,0.856953],[0.750022,0.792167],[0.778133,0.724174],[0.800511,0.653236],[0.816857,0.579614],[0.888471,0.206728],[0.919014,0.123974],[0.974328,0.058517],[1.048362,0.015484],[1.135062,0],[1.135062,-0.5]]);
	}

module HTD_5mm()
	{
	linear_extrude(height=pulley_t_ht+2) polygon([[-1.89036,-0.75],[-1.89036,0],[-1.741168,0.02669],[-1.61387,0.100806],[-1.518984,0.21342],[-1.467026,0.3556],[-1.427162,0.960967],[-1.398568,1.089602],[-1.359437,1.213531],[-1.310296,1.332296],[-1.251672,1.445441],[-1.184092,1.552509],[-1.108081,1.653042],[-1.024167,1.746585],[-0.932877,1.832681],[-0.834736,1.910872],[-0.730271,1.980701],[-0.62001,2.041713],[-0.504478,2.09345],[-0.384202,2.135455],[-0.259708,2.167271],[-0.131524,2.188443],[-0.000176,2.198511],[0.131296,2.188504],[0.259588,2.167387],[0.384174,2.135616],[0.504527,2.093648],[0.620123,2.04194],[0.730433,1.980949],[0.834934,1.911132],[0.933097,1.832945],[1.024398,1.746846],[1.108311,1.653291],[1.184308,1.552736],[1.251865,1.445639],[1.310455,1.332457],[1.359552,1.213647],[1.39863,1.089664],[1.427162,0.960967],[1.467026,0.3556],[1.518984,0.21342],[1.61387,0.100806],[1.741168,0.02669],[1.89036,0],[1.89036,-0.75]]);
	}

module HTD_8mm()
	{
	linear_extrude(height=pulley_t_ht+2) polygon([[-3.301471,-1],[-3.301471,0],[-3.16611,0.012093],[-3.038062,0.047068],[-2.919646,0.10297],[-2.813182,0.177844],[-2.720989,0.269734],[-2.645387,0.376684],[-2.588694,0.496739],[-2.553229,0.627944],[-2.460801,1.470025],[-2.411413,1.691917],[-2.343887,1.905691],[-2.259126,2.110563],[-2.158035,2.30575],[-2.041518,2.490467],[-1.910478,2.66393],[-1.76582,2.825356],[-1.608446,2.973961],[-1.439261,3.10896],[-1.259169,3.22957],[-1.069074,3.335006],[-0.869878,3.424485],[-0.662487,3.497224],[-0.447804,3.552437],[-0.226732,3.589341],[-0.000176,3.607153],[0.226511,3.589461],[0.447712,3.552654],[0.66252,3.497516],[0.870027,3.424833],[1.069329,3.33539],[1.259517,3.229973],[1.439687,3.109367],[1.608931,2.974358],[1.766344,2.825731],[1.911018,2.664271],[2.042047,2.490765],[2.158526,2.305998],[2.259547,2.110755],[2.344204,1.905821],[2.411591,1.691983],[2.460801,1.470025],[2.553229,0.627944],[2.588592,0.496739],[2.645238,0.376684],[2.720834,0.269734],[2.81305,0.177844],[2.919553,0.10297],[3.038012,0.047068],[3.166095,0.012093],[3.301471,0],[3.301471,-1]]);
	}

module GT2_2mm()
	{
	linear_extrude(height=pulley_t_ht+2) polygon([[0.747183,-0.5],[0.747183,0],[0.647876,0.037218],[0.598311,0.130528],[0.578556,0.238423],[0.547158,0.343077],[0.504649,0.443762],[0.451556,0.53975],[0.358229,0.636924],[0.2484,0.707276],[0.127259,0.750044],[0,0.76447],[-0.127259,0.750044],[-0.2484,0.707276],[-0.358229,0.636924],[-0.451556,0.53975],[-0.504797,0.443762],[-0.547291,0.343077],[-0.578605,0.238423],[-0.598311,0.130528],[-0.648009,0.037218],[-0.747183,0],[-0.747183,-0.5]]);
	}

module GT2_3mm()
	{
	linear_extrude(height=pulley_t_ht+2) polygon([[-1.155171,-0.5],[-1.155171,0],[-1.065317,0.016448],[-0.989057,0.062001],[-0.93297,0.130969],[-0.90364,0.217664],[-0.863705,0.408181],[-0.800056,0.591388],[-0.713587,0.765004],[-0.60519,0.926747],[-0.469751,1.032548],[-0.320719,1.108119],[-0.162625,1.153462],[0,1.168577],[0.162625,1.153462],[0.320719,1.108119],[0.469751,1.032548],[0.60519,0.926747],[0.713587,0.765004],[0.800056,0.591388],[0.863705,0.408181],[0.90364,0.217664],[0.932921,0.130969],[0.988924,0.062001],[1.065168,0.016448],[1.155171,0],[1.155171,-0.5]]);
	}

module GT2_5mm()
	{
	linear_extrude(height=pulley_t_ht+2) polygon([[-1.975908,-0.75],[-1.975908,0],[-1.797959,0.03212],[-1.646634,0.121224],[-1.534534,0.256431],[-1.474258,0.426861],[-1.446911,0.570808],[-1.411774,0.712722],[-1.368964,0.852287],[-1.318597,0.989189],[-1.260788,1.123115],[-1.195654,1.25375],[-1.12331,1.380781],[-1.043869,1.503892],[-0.935264,1.612278],[-0.817959,1.706414],[-0.693181,1.786237],[-0.562151,1.851687],[-0.426095,1.9027],[-0.286235,1.939214],[-0.143795,1.961168],[0,1.9685],[0.143796,1.961168],[0.286235,1.939214],[0.426095,1.9027],[0.562151,1.851687],[0.693181,1.786237],[0.817959,1.706414],[0.935263,1.612278],[1.043869,1.503892],[1.123207,1.380781],[1.195509,1.25375],[1.26065,1.123115],[1.318507,0.989189],[1.368956,0.852287],[1.411872,0.712722],[1.447132,0.570808],[1.474611,0.426861],[1.534583,0.256431],[1.646678,0.121223],[1.798064,0.03212],[1.975908,0],[1.975908,-0.75]]);
	}
